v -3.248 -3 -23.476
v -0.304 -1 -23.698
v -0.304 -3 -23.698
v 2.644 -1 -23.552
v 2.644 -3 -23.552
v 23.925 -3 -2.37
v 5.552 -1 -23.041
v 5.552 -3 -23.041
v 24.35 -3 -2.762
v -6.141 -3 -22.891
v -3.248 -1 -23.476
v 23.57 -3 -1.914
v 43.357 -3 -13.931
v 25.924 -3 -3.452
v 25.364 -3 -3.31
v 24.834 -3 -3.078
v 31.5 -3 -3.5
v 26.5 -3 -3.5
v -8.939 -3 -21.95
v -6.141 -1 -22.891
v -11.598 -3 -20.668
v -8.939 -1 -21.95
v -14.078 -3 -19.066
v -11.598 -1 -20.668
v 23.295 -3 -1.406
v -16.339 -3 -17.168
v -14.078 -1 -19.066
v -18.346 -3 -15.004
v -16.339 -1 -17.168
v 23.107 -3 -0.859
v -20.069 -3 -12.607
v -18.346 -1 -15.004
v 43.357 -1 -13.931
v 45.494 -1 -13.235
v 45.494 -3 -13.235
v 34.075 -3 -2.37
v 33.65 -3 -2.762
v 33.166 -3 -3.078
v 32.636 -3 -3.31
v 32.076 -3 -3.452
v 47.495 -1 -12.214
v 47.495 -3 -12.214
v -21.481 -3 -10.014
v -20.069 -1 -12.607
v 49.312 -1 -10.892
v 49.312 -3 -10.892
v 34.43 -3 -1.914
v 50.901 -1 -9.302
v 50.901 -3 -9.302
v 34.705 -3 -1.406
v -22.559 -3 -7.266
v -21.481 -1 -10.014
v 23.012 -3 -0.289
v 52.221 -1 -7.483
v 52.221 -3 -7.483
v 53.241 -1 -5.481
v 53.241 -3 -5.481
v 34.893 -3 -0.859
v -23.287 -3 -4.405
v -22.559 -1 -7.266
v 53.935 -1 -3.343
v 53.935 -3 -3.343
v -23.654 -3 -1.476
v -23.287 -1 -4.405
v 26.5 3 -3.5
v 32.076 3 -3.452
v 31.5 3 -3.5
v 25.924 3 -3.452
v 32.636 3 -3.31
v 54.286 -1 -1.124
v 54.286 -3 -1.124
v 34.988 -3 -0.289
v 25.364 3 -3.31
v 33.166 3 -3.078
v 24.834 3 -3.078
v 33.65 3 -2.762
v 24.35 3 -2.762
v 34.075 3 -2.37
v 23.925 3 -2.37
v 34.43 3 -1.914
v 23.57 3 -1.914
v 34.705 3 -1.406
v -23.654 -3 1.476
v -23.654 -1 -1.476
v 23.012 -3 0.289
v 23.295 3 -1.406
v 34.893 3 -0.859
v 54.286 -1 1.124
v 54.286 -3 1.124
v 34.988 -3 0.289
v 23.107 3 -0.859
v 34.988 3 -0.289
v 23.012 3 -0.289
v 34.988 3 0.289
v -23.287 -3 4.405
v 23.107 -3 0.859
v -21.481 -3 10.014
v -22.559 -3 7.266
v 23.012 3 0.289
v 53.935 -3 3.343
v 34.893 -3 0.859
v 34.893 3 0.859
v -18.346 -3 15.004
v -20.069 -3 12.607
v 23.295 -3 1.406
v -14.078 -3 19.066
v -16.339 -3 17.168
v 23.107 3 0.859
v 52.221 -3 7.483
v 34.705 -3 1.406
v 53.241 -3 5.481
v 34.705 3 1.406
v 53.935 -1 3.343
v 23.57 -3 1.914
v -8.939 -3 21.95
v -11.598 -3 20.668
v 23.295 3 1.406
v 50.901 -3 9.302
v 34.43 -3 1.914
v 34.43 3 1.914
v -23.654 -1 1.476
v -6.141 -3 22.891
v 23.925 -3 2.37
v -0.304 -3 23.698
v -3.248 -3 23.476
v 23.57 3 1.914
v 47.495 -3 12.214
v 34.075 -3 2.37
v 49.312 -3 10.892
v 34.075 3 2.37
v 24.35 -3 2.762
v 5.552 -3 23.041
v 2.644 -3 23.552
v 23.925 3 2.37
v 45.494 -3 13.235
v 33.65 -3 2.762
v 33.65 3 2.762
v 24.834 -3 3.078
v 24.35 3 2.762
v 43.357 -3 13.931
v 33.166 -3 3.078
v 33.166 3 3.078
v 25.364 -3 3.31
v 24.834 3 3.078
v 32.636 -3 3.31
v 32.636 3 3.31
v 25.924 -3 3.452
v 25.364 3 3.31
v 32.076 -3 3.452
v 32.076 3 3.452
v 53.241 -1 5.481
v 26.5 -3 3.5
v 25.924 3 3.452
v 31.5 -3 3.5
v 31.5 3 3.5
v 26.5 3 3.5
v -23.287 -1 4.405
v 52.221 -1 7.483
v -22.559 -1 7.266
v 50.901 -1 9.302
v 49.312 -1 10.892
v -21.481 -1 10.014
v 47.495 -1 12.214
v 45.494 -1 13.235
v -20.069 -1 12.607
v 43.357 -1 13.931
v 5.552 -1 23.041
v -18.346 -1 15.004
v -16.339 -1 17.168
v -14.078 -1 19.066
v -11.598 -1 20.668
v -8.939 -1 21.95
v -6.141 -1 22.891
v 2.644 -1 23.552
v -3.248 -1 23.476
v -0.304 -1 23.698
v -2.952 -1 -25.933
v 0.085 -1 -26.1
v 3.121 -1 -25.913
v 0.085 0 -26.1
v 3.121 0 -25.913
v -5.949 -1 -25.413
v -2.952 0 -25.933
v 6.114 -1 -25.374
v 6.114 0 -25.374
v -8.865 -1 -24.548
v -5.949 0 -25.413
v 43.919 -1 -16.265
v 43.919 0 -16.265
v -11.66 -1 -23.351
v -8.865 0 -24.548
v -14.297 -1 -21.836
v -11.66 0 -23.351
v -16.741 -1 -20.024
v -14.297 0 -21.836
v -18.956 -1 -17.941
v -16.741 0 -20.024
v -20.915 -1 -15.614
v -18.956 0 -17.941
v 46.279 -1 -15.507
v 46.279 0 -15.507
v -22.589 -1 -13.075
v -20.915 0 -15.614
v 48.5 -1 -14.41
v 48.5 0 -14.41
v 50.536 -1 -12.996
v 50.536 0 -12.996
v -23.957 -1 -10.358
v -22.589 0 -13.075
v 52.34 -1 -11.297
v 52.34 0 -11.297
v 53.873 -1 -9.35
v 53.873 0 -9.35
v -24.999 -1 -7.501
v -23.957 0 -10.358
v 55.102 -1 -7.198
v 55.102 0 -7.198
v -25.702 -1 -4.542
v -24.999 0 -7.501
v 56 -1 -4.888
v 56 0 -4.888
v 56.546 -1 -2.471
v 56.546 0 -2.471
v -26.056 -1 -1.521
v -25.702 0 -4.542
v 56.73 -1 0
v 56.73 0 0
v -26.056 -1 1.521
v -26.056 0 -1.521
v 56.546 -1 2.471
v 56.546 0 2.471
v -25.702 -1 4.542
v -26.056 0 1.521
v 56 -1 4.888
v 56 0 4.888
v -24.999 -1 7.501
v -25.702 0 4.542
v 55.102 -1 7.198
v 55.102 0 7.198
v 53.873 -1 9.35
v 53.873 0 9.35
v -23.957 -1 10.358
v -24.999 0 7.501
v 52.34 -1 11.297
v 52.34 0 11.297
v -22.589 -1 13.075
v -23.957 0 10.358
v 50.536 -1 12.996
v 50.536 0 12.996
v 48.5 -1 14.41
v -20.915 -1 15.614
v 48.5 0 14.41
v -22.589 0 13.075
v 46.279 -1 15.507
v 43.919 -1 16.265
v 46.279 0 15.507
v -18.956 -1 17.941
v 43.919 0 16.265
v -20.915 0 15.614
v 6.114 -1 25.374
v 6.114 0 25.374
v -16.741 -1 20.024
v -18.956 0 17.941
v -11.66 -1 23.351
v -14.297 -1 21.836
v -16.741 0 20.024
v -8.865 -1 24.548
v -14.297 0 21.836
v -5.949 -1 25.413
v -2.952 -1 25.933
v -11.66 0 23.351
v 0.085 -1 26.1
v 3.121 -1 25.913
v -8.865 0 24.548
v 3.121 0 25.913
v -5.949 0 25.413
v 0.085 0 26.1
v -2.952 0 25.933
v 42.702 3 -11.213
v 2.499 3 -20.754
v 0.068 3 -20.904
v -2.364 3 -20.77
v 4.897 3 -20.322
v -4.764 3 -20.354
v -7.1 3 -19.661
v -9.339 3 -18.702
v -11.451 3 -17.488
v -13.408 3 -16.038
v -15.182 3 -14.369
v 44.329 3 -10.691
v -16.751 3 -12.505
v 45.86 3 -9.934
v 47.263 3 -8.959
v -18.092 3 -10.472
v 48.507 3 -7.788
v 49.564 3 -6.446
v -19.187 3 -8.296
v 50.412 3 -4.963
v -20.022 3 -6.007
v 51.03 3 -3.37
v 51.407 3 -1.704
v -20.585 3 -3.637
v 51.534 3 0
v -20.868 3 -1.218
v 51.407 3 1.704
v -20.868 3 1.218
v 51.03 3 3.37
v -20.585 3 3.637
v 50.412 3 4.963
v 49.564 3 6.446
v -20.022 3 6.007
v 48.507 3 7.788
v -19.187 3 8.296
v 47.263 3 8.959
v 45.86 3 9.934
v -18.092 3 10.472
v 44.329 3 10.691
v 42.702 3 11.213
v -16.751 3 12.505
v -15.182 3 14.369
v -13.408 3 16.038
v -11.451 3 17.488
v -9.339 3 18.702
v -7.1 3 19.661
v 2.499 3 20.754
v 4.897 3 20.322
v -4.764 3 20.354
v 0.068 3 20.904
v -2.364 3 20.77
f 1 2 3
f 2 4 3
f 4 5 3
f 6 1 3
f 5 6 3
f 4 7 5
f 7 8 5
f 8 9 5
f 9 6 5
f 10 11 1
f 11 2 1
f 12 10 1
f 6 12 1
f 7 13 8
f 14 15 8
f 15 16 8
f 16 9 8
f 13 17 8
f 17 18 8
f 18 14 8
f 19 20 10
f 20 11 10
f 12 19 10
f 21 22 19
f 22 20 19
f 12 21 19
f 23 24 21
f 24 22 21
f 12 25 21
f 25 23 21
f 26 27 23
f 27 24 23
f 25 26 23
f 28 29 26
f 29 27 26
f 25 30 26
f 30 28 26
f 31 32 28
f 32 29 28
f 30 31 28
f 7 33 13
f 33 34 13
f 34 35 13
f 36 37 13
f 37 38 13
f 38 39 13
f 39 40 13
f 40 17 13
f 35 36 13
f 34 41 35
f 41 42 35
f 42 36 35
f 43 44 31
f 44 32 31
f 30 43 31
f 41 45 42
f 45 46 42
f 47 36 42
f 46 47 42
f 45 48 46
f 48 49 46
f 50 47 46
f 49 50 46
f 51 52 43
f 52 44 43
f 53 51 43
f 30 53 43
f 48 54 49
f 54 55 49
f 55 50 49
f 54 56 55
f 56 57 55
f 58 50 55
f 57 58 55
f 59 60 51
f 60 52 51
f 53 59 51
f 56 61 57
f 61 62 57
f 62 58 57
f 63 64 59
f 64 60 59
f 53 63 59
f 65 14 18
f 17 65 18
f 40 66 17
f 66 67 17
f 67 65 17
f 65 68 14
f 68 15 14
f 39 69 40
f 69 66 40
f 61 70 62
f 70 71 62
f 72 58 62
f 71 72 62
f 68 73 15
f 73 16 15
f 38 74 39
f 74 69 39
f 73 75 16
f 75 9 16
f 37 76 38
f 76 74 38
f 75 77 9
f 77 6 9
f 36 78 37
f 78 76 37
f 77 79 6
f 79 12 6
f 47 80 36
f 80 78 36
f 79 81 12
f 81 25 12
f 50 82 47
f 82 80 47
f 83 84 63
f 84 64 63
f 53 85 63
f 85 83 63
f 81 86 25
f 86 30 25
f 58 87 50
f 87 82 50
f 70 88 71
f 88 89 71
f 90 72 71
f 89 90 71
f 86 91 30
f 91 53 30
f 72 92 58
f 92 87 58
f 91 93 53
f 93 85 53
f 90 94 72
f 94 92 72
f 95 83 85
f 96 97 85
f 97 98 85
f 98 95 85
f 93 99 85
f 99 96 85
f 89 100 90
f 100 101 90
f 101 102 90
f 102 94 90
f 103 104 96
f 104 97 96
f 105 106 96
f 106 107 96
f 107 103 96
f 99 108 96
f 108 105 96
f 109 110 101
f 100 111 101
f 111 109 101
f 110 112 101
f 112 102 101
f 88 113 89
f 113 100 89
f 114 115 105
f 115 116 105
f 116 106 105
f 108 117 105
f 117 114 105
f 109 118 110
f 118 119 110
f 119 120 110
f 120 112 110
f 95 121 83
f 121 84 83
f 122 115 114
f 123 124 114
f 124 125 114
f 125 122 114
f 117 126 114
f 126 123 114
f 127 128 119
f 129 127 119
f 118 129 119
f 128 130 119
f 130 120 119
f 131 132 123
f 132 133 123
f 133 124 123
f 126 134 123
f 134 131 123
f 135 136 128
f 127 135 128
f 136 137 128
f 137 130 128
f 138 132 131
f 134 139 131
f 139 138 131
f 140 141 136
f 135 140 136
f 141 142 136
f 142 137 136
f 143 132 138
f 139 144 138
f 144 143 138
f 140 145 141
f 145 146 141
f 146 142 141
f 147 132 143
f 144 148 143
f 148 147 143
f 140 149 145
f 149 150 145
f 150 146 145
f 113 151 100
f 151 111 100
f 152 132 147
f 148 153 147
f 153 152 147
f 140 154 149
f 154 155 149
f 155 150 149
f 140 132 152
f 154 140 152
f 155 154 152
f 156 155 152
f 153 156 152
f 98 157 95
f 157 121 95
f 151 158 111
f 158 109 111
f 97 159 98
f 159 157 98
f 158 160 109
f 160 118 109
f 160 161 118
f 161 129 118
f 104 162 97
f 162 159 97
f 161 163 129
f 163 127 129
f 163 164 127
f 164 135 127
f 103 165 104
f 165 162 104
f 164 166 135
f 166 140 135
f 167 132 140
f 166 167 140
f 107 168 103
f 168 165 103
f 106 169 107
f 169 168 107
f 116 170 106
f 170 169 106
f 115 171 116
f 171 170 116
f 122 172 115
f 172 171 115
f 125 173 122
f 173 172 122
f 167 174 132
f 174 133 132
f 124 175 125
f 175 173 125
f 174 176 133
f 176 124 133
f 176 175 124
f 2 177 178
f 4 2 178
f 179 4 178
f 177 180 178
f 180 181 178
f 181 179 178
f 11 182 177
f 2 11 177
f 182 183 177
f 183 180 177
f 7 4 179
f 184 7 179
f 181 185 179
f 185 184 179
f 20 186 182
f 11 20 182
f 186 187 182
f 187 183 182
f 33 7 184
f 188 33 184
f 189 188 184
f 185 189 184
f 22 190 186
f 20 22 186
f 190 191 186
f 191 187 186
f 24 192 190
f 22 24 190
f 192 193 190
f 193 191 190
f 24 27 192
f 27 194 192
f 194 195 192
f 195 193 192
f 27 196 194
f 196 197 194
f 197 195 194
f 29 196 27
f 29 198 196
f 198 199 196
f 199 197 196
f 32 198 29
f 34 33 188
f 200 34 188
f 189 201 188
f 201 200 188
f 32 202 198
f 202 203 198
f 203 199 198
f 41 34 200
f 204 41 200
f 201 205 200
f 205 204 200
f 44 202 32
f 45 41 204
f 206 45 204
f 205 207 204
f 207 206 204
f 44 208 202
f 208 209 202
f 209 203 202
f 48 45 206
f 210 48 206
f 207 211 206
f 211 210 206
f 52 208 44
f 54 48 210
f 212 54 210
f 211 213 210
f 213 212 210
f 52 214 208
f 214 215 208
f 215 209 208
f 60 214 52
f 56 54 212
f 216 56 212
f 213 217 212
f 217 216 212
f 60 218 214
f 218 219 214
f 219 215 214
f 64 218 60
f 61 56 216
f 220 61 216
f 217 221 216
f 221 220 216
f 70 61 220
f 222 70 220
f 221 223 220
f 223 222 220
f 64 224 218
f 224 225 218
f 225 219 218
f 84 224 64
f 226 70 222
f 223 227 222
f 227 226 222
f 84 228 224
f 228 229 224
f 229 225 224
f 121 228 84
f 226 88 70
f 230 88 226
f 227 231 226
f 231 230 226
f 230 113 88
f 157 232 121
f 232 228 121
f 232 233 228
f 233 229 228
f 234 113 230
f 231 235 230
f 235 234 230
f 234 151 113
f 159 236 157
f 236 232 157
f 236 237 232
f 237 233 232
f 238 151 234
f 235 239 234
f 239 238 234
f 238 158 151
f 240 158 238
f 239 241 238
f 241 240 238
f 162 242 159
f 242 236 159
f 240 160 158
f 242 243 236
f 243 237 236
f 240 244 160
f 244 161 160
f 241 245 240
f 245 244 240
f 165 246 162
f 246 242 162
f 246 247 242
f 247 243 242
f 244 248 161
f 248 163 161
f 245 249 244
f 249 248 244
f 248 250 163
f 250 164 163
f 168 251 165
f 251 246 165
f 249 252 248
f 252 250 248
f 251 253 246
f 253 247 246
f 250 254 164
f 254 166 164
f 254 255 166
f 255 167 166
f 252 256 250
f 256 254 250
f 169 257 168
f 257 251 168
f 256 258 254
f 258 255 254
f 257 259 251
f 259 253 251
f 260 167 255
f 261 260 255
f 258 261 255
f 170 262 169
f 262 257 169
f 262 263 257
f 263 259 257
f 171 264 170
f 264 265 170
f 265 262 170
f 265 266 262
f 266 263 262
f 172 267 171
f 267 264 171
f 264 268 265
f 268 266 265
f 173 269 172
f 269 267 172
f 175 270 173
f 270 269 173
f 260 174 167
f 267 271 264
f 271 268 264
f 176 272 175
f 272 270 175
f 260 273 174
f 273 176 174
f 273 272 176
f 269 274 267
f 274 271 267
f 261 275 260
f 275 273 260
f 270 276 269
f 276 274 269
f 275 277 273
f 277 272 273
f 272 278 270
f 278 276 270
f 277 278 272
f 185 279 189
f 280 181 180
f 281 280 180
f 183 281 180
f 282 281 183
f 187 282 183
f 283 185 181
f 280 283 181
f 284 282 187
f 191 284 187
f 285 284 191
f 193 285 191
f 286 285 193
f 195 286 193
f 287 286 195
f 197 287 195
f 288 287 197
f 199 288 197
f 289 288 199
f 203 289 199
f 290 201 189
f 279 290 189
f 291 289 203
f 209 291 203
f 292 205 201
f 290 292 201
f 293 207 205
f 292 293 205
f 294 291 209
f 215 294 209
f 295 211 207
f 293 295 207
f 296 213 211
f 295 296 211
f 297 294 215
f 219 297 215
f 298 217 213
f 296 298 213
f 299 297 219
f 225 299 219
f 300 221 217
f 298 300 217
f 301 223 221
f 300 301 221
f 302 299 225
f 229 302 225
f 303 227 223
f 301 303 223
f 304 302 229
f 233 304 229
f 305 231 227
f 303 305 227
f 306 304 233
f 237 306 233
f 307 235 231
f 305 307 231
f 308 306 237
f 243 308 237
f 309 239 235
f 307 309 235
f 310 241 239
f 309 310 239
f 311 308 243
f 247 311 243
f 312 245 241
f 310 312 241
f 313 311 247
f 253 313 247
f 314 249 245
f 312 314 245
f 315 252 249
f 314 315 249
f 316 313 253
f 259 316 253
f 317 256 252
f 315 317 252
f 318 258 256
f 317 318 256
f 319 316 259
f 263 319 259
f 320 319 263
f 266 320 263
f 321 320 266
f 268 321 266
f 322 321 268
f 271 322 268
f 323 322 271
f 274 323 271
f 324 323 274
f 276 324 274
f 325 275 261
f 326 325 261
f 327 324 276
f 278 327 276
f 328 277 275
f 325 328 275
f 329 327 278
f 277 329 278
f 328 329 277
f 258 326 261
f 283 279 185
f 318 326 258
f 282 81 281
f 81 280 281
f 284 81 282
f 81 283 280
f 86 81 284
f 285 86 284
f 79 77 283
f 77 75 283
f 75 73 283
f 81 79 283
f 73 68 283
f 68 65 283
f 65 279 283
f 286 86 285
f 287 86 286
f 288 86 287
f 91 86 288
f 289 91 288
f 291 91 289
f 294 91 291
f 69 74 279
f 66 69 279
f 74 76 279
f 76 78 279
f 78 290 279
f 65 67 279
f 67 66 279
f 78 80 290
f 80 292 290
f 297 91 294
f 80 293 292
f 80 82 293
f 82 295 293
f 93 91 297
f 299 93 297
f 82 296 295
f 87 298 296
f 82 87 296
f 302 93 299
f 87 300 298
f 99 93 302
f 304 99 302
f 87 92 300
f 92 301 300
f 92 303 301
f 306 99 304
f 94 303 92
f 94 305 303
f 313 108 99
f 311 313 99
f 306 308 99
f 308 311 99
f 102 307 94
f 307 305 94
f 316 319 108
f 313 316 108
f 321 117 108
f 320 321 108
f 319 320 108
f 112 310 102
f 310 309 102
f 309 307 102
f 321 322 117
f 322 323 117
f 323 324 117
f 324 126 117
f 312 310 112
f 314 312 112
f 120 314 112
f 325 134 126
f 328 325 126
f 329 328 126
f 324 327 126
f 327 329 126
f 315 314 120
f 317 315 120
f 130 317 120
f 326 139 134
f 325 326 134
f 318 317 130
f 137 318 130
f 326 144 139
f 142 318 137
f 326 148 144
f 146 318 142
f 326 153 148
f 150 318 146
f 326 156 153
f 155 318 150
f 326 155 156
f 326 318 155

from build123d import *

# Parameters (mm, degrees)
BOSS_EXTRUDE1_DEPTH           = 3
BOSS_EXTRUDE1_TAPER           = 60
BOSS_EXTRUDE1_OTHER_WAY_DEPTH = 1
BOSS_EXTRUDE2_DEPTH           = 3
CUT_EXTRUDE1_DEPTH            = 7


with BuildPart() as part:
    # Sketch2 → Boss-Extrude1 (new body)
    with BuildSketch(Plane(origin=(0, 0, 0), x_dir=(1, 0, 0), z_dir=(0, 1, 0))):
        with BuildLine():
            Line((6.113925, -25.373803836), (43.9190025, -16.264511041))
            ThreePointArc((43.9190025, -16.264511041), (56.73, 0), (43.9190025, 16.264511041))
            Line((43.9190025, 16.264511041), (6.113925, 25.373803836))
            ThreePointArc((6.113925, 25.373803836), (-26.1, 0), (6.113925, -25.373803836))
        make_face()
    extrude(amount=BOSS_EXTRUDE1_DEPTH, taper=BOSS_EXTRUDE1_TAPER)

    # Sketch2 → Boss-Extrude1 other way (add)
    with BuildSketch(Plane(origin=(0, 0, 0), x_dir=(1, 0, 0), z_dir=(0, 1, 0))):
        with BuildLine():
            Line((6.113925, -25.373803836), (43.9190025, -16.264511041))
            ThreePointArc((43.9190025, -16.264511041), (56.73, 0), (43.9190025, 16.264511041))
            Line((43.9190025, 16.264511041), (6.113925, 25.373803836))
            ThreePointArc((6.113925, 25.373803836), (-26.1, 0), (6.113925, -25.373803836))
        make_face()
    extrude(amount=-BOSS_EXTRUDE1_OTHER_WAY_DEPTH)

    # Sketch1 → Boss-Extrude2 (add)
    with BuildSketch(Plane(origin=(0, 0, 0), x_dir=(1, 0, 0), z_dir=(0, 1, 0))):
        with BuildLine():
            Line((5.551725, 23.040580495), (43.3568025, 13.9312877))
            ThreePointArc((43.3568025, 13.9312877), (54.33, 0), (43.3568025, -13.9312877))
            Line((43.3568025, -13.9312877), (5.551725, -23.040580495))
            ThreePointArc((5.551725, -23.040580495), (-23.7, 0), (5.551725, 23.040580495))
        make_face()
    extrude(amount=-BOSS_EXTRUDE2_DEPTH)

    # Sketch3 → Cut-Extrude1 (cut, through all)
    with BuildSketch(Plane(origin=(0, 3, 0), x_dir=(1, 0, 0), z_dir=(0, 1, 0))):
        with BuildLine():
            Line((31.5, -3.5), (26.5, -3.5))
            ThreePointArc((26.5, -3.5), (23, 0), (26.5, 3.5))
            Line((26.5, 3.5), (31.5, 3.5))
            ThreePointArc((31.5, 3.5), (35, 0), (31.5, -3.5))
        make_face()
    extrude(amount=-CUT_EXTRUDE1_DEPTH, mode=Mode.SUBTRACT)


solid = part.part
